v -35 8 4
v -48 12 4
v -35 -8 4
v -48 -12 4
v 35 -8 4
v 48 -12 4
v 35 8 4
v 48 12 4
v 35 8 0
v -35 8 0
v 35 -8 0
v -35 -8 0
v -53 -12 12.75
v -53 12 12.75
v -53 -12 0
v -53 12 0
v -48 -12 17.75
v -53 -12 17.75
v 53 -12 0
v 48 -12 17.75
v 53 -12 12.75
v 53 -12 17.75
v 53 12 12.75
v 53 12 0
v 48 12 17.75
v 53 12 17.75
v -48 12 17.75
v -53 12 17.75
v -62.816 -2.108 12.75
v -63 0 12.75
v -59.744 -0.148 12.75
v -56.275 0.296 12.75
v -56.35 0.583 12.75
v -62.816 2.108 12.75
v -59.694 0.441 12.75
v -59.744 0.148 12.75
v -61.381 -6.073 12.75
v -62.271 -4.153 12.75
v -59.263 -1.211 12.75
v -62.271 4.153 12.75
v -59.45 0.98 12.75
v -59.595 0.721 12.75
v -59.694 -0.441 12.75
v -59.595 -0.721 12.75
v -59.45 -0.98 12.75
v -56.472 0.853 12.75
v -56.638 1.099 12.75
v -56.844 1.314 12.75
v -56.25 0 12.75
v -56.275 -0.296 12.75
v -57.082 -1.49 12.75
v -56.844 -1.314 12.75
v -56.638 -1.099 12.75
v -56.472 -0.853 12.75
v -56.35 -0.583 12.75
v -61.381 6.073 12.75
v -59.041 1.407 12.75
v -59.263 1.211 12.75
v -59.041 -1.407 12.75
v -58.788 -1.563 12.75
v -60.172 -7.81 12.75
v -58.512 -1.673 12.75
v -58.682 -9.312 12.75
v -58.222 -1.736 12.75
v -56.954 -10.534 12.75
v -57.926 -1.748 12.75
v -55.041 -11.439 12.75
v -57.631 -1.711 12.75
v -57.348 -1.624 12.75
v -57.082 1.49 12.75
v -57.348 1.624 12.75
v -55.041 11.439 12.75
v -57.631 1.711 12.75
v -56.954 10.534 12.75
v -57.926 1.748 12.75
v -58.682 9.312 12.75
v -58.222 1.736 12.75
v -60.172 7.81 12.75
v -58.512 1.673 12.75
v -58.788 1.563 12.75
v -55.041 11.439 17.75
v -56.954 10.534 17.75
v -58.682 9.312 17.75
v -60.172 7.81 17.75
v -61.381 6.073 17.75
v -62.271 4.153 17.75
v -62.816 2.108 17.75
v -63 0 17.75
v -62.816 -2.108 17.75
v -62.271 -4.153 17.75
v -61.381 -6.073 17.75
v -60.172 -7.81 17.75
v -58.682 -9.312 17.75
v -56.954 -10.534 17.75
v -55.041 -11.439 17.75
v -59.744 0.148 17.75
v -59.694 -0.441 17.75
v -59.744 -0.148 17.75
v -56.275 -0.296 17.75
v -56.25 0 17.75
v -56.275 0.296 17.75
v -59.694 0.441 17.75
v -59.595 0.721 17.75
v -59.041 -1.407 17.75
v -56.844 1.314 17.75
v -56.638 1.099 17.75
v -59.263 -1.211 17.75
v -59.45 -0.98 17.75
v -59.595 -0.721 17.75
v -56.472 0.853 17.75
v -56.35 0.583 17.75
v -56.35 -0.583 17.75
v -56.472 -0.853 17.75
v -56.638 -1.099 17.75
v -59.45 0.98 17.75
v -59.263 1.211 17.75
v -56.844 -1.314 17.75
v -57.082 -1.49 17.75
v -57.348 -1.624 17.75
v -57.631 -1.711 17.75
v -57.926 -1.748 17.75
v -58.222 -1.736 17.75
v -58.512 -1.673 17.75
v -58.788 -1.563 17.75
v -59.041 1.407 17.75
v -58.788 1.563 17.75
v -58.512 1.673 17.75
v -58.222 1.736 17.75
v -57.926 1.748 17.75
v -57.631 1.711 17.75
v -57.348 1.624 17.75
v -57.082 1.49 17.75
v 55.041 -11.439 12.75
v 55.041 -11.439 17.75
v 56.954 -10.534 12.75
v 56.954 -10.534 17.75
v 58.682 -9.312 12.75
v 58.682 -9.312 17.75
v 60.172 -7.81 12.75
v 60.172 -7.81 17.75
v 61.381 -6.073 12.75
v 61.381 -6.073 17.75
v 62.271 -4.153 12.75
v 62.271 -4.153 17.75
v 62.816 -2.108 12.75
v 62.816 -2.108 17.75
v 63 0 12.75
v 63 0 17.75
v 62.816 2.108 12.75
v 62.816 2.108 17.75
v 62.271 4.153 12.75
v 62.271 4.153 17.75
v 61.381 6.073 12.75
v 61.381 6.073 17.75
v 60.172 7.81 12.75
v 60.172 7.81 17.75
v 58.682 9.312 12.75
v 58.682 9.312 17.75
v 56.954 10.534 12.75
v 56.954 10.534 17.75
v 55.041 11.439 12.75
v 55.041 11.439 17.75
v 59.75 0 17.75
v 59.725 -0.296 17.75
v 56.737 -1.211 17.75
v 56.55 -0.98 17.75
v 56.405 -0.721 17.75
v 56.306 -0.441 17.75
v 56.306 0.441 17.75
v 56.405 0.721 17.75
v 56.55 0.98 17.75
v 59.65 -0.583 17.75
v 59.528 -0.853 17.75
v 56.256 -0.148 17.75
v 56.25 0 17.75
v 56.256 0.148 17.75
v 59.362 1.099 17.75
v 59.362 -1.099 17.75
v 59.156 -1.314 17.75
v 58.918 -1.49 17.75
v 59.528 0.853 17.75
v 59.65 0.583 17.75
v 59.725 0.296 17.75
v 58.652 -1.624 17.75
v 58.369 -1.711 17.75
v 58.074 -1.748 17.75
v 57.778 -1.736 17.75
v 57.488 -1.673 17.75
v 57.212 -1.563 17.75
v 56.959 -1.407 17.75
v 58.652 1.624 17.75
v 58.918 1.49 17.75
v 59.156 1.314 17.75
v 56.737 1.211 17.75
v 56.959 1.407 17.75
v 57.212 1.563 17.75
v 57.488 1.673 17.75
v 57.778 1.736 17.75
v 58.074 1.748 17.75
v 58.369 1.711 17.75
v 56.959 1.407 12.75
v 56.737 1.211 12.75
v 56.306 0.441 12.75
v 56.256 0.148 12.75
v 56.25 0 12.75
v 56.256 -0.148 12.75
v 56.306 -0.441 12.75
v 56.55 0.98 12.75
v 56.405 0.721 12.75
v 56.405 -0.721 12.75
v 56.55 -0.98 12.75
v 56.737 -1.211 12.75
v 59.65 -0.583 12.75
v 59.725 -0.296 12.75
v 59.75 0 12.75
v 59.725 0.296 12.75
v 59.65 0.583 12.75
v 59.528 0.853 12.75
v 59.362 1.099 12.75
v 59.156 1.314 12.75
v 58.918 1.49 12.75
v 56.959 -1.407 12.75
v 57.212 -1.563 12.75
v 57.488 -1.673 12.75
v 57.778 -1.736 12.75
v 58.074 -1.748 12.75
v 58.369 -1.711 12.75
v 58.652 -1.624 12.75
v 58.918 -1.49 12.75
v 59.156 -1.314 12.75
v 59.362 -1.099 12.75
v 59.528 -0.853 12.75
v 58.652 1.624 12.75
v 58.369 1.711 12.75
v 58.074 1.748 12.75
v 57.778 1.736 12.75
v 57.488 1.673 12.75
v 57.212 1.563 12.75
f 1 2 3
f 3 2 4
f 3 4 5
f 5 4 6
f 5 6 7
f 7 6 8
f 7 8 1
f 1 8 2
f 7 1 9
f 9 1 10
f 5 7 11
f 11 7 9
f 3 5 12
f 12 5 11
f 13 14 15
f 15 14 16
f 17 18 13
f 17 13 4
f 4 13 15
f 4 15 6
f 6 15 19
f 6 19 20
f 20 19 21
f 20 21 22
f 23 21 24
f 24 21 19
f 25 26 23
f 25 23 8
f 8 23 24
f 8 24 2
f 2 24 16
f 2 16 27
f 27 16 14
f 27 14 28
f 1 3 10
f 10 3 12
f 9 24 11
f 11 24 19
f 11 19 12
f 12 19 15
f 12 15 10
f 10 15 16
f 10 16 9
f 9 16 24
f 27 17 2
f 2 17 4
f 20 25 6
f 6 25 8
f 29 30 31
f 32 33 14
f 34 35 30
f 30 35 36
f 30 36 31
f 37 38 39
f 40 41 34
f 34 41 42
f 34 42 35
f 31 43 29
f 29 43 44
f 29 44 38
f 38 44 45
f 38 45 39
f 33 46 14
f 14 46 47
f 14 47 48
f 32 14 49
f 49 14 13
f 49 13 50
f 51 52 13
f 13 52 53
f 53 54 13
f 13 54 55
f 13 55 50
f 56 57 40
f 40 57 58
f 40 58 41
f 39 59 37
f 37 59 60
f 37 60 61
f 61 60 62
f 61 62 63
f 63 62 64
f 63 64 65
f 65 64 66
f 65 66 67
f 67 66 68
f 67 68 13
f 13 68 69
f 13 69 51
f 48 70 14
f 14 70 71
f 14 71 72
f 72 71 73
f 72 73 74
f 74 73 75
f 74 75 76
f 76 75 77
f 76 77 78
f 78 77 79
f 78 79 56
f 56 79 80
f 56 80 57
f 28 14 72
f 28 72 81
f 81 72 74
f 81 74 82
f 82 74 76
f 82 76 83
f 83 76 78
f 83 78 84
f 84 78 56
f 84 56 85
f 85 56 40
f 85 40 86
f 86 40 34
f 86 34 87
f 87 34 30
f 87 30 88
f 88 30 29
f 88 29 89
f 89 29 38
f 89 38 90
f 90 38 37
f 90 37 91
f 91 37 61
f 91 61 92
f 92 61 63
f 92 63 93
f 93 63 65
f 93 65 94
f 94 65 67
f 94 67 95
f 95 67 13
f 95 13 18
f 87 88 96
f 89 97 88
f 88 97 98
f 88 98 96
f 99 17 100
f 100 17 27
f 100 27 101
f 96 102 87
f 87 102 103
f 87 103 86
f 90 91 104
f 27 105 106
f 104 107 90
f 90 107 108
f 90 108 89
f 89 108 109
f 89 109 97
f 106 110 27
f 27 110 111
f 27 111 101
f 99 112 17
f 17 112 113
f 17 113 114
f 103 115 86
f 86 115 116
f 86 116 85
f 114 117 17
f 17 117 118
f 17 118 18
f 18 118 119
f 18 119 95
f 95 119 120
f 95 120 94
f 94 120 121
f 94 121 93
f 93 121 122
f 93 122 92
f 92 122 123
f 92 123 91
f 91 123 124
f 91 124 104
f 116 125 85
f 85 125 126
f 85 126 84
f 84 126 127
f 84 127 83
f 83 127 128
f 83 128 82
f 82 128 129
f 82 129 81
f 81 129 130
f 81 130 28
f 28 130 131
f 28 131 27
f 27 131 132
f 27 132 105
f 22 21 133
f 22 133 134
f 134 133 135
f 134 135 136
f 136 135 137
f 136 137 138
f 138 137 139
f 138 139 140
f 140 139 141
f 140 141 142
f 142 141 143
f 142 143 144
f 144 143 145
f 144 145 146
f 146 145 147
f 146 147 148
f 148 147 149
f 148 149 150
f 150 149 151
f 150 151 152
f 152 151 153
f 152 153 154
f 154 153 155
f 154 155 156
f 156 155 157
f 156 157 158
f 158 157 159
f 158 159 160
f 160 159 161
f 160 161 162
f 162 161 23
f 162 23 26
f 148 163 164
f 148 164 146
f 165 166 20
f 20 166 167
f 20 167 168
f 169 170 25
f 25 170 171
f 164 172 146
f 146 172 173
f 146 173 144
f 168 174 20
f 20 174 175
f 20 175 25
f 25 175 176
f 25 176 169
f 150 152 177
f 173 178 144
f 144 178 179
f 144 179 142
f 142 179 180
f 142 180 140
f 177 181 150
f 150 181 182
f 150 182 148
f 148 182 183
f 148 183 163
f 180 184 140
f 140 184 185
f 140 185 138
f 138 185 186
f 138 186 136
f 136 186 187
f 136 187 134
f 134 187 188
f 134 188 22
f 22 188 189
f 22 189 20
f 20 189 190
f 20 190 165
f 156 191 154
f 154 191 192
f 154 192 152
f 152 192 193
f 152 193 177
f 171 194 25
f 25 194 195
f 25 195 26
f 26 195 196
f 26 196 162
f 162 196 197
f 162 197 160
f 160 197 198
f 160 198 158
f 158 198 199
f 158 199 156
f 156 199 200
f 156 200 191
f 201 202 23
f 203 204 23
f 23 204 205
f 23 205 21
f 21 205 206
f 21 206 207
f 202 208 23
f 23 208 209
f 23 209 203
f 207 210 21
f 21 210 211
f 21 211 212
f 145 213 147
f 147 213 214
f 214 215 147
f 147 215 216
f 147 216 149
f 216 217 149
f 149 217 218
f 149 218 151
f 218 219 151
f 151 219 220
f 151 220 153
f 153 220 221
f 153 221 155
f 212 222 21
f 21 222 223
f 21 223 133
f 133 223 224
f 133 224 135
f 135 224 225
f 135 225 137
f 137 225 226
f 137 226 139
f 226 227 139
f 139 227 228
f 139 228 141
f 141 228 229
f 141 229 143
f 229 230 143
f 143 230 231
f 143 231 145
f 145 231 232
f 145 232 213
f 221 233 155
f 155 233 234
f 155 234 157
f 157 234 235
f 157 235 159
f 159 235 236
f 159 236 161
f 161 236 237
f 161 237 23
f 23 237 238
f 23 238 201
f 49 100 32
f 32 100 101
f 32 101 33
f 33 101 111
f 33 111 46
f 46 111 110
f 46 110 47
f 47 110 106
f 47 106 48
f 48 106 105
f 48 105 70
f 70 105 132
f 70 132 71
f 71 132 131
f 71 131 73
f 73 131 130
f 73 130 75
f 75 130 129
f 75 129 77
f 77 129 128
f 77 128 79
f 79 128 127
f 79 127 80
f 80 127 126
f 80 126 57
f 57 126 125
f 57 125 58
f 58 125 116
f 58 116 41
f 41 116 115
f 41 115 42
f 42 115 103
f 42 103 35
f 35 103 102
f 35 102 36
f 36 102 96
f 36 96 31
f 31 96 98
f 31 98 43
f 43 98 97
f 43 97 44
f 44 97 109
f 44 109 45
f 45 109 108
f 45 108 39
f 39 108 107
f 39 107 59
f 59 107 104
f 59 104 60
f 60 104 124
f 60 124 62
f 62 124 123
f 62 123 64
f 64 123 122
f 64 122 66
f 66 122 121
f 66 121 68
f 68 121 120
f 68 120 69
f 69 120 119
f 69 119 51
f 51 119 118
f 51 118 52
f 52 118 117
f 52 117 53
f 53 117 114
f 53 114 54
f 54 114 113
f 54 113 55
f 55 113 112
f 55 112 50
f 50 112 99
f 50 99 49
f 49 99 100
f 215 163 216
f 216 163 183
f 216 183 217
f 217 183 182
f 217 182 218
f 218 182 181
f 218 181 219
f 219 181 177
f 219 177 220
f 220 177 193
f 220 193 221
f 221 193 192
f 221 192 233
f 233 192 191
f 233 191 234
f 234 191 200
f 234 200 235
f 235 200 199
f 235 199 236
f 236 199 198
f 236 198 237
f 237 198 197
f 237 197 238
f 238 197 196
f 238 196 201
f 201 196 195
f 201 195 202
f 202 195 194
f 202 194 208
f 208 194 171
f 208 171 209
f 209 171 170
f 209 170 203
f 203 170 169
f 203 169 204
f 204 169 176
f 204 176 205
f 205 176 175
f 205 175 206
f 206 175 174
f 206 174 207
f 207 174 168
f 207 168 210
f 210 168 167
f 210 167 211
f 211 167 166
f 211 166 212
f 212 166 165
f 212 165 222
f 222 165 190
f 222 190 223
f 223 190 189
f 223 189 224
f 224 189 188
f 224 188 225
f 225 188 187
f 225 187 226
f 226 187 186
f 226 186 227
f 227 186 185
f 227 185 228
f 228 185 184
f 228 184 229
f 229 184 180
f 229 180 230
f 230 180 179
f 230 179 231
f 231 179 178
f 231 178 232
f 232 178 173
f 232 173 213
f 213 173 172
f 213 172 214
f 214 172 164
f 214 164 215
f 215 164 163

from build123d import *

# Parameters (mm, degrees)
ESQUISSE1_W             = 5
ESQUISSE1_H             = 24
ESQUISSE1_W_2           = 96
ESQUISSE1_W_3           = 70
ESQUISSE1_H_2           = 16
BOSS_EXTRU_1_DEPTH      = 4
ESQUISSE2_W             = 5
ESQUISSE2_H             = 24
BOSS_EXTRU_2_DEPTH      = 8.75
BOSS_EXTRU_3_DEPTH      = 5
ESQUISSE4_R             = 1.75
ENL_V_MAT_EXTRU_2_DEPTH = 18.75


with BuildPart() as part:
    # Esquisse1 → Boss.-Extru.1 (new body)
    with BuildSketch(Plane.XY):
        with Locations((-50.5, 0)):
            Rectangle(ESQUISSE1_W, ESQUISSE1_H)
        Rectangle(ESQUISSE1_W_2, ESQUISSE1_H)
        Rectangle(ESQUISSE1_W_3, ESQUISSE1_H_2, mode=Mode.SUBTRACT)
        with Locations((50.5, 0)):
            Rectangle(ESQUISSE1_W, ESQUISSE1_H)
    extrude(amount=BOSS_EXTRU_1_DEPTH)

    # Esquisse2 → Boss.-Extru.2 (add)
    with BuildSketch(Plane.XY.offset(4)):
        with Locations((-50.5, 0)):
            Rectangle(ESQUISSE2_W, ESQUISSE2_H)
        with Locations((50.5, 0)):
            Rectangle(ESQUISSE2_W, ESQUISSE2_H)
    extrude(amount=BOSS_EXTRU_2_DEPTH)

    # Esquisse3 → Boss.-Extru.3 (add)
    with BuildSketch(Plane.XY.offset(12.75)):
        with BuildLine():
            Line((-48, 12), (-53, 12))
            ThreePointArc((-53, 12), (-63, 0), (-53, -12))
            Line((-53, -12), (-48, -12))
            Line((-48, -12), (-48, 12))
        make_face()
        with BuildLine():
            Line((48, -12), (53, -12))
            ThreePointArc((53, -12), (63, 0), (53, 12))
            Line((53, 12), (48, 12))
            Line((48, 12), (48, -12))
        make_face()
    extrude(amount=BOSS_EXTRU_3_DEPTH)

    # Esquisse4 → Enlèv. mat.-Extru.2 (cut, through all)
    with BuildSketch(Plane.XY.offset(17.75)):
        with Locations((-58, 0)):
            Circle(ESQUISSE4_R)
        with Locations((58, 0)):
            Circle(ESQUISSE4_R)
    extrude(amount=-ENL_V_MAT_EXTRU_2_DEPTH, mode=Mode.SUBTRACT)


solid = part.part
